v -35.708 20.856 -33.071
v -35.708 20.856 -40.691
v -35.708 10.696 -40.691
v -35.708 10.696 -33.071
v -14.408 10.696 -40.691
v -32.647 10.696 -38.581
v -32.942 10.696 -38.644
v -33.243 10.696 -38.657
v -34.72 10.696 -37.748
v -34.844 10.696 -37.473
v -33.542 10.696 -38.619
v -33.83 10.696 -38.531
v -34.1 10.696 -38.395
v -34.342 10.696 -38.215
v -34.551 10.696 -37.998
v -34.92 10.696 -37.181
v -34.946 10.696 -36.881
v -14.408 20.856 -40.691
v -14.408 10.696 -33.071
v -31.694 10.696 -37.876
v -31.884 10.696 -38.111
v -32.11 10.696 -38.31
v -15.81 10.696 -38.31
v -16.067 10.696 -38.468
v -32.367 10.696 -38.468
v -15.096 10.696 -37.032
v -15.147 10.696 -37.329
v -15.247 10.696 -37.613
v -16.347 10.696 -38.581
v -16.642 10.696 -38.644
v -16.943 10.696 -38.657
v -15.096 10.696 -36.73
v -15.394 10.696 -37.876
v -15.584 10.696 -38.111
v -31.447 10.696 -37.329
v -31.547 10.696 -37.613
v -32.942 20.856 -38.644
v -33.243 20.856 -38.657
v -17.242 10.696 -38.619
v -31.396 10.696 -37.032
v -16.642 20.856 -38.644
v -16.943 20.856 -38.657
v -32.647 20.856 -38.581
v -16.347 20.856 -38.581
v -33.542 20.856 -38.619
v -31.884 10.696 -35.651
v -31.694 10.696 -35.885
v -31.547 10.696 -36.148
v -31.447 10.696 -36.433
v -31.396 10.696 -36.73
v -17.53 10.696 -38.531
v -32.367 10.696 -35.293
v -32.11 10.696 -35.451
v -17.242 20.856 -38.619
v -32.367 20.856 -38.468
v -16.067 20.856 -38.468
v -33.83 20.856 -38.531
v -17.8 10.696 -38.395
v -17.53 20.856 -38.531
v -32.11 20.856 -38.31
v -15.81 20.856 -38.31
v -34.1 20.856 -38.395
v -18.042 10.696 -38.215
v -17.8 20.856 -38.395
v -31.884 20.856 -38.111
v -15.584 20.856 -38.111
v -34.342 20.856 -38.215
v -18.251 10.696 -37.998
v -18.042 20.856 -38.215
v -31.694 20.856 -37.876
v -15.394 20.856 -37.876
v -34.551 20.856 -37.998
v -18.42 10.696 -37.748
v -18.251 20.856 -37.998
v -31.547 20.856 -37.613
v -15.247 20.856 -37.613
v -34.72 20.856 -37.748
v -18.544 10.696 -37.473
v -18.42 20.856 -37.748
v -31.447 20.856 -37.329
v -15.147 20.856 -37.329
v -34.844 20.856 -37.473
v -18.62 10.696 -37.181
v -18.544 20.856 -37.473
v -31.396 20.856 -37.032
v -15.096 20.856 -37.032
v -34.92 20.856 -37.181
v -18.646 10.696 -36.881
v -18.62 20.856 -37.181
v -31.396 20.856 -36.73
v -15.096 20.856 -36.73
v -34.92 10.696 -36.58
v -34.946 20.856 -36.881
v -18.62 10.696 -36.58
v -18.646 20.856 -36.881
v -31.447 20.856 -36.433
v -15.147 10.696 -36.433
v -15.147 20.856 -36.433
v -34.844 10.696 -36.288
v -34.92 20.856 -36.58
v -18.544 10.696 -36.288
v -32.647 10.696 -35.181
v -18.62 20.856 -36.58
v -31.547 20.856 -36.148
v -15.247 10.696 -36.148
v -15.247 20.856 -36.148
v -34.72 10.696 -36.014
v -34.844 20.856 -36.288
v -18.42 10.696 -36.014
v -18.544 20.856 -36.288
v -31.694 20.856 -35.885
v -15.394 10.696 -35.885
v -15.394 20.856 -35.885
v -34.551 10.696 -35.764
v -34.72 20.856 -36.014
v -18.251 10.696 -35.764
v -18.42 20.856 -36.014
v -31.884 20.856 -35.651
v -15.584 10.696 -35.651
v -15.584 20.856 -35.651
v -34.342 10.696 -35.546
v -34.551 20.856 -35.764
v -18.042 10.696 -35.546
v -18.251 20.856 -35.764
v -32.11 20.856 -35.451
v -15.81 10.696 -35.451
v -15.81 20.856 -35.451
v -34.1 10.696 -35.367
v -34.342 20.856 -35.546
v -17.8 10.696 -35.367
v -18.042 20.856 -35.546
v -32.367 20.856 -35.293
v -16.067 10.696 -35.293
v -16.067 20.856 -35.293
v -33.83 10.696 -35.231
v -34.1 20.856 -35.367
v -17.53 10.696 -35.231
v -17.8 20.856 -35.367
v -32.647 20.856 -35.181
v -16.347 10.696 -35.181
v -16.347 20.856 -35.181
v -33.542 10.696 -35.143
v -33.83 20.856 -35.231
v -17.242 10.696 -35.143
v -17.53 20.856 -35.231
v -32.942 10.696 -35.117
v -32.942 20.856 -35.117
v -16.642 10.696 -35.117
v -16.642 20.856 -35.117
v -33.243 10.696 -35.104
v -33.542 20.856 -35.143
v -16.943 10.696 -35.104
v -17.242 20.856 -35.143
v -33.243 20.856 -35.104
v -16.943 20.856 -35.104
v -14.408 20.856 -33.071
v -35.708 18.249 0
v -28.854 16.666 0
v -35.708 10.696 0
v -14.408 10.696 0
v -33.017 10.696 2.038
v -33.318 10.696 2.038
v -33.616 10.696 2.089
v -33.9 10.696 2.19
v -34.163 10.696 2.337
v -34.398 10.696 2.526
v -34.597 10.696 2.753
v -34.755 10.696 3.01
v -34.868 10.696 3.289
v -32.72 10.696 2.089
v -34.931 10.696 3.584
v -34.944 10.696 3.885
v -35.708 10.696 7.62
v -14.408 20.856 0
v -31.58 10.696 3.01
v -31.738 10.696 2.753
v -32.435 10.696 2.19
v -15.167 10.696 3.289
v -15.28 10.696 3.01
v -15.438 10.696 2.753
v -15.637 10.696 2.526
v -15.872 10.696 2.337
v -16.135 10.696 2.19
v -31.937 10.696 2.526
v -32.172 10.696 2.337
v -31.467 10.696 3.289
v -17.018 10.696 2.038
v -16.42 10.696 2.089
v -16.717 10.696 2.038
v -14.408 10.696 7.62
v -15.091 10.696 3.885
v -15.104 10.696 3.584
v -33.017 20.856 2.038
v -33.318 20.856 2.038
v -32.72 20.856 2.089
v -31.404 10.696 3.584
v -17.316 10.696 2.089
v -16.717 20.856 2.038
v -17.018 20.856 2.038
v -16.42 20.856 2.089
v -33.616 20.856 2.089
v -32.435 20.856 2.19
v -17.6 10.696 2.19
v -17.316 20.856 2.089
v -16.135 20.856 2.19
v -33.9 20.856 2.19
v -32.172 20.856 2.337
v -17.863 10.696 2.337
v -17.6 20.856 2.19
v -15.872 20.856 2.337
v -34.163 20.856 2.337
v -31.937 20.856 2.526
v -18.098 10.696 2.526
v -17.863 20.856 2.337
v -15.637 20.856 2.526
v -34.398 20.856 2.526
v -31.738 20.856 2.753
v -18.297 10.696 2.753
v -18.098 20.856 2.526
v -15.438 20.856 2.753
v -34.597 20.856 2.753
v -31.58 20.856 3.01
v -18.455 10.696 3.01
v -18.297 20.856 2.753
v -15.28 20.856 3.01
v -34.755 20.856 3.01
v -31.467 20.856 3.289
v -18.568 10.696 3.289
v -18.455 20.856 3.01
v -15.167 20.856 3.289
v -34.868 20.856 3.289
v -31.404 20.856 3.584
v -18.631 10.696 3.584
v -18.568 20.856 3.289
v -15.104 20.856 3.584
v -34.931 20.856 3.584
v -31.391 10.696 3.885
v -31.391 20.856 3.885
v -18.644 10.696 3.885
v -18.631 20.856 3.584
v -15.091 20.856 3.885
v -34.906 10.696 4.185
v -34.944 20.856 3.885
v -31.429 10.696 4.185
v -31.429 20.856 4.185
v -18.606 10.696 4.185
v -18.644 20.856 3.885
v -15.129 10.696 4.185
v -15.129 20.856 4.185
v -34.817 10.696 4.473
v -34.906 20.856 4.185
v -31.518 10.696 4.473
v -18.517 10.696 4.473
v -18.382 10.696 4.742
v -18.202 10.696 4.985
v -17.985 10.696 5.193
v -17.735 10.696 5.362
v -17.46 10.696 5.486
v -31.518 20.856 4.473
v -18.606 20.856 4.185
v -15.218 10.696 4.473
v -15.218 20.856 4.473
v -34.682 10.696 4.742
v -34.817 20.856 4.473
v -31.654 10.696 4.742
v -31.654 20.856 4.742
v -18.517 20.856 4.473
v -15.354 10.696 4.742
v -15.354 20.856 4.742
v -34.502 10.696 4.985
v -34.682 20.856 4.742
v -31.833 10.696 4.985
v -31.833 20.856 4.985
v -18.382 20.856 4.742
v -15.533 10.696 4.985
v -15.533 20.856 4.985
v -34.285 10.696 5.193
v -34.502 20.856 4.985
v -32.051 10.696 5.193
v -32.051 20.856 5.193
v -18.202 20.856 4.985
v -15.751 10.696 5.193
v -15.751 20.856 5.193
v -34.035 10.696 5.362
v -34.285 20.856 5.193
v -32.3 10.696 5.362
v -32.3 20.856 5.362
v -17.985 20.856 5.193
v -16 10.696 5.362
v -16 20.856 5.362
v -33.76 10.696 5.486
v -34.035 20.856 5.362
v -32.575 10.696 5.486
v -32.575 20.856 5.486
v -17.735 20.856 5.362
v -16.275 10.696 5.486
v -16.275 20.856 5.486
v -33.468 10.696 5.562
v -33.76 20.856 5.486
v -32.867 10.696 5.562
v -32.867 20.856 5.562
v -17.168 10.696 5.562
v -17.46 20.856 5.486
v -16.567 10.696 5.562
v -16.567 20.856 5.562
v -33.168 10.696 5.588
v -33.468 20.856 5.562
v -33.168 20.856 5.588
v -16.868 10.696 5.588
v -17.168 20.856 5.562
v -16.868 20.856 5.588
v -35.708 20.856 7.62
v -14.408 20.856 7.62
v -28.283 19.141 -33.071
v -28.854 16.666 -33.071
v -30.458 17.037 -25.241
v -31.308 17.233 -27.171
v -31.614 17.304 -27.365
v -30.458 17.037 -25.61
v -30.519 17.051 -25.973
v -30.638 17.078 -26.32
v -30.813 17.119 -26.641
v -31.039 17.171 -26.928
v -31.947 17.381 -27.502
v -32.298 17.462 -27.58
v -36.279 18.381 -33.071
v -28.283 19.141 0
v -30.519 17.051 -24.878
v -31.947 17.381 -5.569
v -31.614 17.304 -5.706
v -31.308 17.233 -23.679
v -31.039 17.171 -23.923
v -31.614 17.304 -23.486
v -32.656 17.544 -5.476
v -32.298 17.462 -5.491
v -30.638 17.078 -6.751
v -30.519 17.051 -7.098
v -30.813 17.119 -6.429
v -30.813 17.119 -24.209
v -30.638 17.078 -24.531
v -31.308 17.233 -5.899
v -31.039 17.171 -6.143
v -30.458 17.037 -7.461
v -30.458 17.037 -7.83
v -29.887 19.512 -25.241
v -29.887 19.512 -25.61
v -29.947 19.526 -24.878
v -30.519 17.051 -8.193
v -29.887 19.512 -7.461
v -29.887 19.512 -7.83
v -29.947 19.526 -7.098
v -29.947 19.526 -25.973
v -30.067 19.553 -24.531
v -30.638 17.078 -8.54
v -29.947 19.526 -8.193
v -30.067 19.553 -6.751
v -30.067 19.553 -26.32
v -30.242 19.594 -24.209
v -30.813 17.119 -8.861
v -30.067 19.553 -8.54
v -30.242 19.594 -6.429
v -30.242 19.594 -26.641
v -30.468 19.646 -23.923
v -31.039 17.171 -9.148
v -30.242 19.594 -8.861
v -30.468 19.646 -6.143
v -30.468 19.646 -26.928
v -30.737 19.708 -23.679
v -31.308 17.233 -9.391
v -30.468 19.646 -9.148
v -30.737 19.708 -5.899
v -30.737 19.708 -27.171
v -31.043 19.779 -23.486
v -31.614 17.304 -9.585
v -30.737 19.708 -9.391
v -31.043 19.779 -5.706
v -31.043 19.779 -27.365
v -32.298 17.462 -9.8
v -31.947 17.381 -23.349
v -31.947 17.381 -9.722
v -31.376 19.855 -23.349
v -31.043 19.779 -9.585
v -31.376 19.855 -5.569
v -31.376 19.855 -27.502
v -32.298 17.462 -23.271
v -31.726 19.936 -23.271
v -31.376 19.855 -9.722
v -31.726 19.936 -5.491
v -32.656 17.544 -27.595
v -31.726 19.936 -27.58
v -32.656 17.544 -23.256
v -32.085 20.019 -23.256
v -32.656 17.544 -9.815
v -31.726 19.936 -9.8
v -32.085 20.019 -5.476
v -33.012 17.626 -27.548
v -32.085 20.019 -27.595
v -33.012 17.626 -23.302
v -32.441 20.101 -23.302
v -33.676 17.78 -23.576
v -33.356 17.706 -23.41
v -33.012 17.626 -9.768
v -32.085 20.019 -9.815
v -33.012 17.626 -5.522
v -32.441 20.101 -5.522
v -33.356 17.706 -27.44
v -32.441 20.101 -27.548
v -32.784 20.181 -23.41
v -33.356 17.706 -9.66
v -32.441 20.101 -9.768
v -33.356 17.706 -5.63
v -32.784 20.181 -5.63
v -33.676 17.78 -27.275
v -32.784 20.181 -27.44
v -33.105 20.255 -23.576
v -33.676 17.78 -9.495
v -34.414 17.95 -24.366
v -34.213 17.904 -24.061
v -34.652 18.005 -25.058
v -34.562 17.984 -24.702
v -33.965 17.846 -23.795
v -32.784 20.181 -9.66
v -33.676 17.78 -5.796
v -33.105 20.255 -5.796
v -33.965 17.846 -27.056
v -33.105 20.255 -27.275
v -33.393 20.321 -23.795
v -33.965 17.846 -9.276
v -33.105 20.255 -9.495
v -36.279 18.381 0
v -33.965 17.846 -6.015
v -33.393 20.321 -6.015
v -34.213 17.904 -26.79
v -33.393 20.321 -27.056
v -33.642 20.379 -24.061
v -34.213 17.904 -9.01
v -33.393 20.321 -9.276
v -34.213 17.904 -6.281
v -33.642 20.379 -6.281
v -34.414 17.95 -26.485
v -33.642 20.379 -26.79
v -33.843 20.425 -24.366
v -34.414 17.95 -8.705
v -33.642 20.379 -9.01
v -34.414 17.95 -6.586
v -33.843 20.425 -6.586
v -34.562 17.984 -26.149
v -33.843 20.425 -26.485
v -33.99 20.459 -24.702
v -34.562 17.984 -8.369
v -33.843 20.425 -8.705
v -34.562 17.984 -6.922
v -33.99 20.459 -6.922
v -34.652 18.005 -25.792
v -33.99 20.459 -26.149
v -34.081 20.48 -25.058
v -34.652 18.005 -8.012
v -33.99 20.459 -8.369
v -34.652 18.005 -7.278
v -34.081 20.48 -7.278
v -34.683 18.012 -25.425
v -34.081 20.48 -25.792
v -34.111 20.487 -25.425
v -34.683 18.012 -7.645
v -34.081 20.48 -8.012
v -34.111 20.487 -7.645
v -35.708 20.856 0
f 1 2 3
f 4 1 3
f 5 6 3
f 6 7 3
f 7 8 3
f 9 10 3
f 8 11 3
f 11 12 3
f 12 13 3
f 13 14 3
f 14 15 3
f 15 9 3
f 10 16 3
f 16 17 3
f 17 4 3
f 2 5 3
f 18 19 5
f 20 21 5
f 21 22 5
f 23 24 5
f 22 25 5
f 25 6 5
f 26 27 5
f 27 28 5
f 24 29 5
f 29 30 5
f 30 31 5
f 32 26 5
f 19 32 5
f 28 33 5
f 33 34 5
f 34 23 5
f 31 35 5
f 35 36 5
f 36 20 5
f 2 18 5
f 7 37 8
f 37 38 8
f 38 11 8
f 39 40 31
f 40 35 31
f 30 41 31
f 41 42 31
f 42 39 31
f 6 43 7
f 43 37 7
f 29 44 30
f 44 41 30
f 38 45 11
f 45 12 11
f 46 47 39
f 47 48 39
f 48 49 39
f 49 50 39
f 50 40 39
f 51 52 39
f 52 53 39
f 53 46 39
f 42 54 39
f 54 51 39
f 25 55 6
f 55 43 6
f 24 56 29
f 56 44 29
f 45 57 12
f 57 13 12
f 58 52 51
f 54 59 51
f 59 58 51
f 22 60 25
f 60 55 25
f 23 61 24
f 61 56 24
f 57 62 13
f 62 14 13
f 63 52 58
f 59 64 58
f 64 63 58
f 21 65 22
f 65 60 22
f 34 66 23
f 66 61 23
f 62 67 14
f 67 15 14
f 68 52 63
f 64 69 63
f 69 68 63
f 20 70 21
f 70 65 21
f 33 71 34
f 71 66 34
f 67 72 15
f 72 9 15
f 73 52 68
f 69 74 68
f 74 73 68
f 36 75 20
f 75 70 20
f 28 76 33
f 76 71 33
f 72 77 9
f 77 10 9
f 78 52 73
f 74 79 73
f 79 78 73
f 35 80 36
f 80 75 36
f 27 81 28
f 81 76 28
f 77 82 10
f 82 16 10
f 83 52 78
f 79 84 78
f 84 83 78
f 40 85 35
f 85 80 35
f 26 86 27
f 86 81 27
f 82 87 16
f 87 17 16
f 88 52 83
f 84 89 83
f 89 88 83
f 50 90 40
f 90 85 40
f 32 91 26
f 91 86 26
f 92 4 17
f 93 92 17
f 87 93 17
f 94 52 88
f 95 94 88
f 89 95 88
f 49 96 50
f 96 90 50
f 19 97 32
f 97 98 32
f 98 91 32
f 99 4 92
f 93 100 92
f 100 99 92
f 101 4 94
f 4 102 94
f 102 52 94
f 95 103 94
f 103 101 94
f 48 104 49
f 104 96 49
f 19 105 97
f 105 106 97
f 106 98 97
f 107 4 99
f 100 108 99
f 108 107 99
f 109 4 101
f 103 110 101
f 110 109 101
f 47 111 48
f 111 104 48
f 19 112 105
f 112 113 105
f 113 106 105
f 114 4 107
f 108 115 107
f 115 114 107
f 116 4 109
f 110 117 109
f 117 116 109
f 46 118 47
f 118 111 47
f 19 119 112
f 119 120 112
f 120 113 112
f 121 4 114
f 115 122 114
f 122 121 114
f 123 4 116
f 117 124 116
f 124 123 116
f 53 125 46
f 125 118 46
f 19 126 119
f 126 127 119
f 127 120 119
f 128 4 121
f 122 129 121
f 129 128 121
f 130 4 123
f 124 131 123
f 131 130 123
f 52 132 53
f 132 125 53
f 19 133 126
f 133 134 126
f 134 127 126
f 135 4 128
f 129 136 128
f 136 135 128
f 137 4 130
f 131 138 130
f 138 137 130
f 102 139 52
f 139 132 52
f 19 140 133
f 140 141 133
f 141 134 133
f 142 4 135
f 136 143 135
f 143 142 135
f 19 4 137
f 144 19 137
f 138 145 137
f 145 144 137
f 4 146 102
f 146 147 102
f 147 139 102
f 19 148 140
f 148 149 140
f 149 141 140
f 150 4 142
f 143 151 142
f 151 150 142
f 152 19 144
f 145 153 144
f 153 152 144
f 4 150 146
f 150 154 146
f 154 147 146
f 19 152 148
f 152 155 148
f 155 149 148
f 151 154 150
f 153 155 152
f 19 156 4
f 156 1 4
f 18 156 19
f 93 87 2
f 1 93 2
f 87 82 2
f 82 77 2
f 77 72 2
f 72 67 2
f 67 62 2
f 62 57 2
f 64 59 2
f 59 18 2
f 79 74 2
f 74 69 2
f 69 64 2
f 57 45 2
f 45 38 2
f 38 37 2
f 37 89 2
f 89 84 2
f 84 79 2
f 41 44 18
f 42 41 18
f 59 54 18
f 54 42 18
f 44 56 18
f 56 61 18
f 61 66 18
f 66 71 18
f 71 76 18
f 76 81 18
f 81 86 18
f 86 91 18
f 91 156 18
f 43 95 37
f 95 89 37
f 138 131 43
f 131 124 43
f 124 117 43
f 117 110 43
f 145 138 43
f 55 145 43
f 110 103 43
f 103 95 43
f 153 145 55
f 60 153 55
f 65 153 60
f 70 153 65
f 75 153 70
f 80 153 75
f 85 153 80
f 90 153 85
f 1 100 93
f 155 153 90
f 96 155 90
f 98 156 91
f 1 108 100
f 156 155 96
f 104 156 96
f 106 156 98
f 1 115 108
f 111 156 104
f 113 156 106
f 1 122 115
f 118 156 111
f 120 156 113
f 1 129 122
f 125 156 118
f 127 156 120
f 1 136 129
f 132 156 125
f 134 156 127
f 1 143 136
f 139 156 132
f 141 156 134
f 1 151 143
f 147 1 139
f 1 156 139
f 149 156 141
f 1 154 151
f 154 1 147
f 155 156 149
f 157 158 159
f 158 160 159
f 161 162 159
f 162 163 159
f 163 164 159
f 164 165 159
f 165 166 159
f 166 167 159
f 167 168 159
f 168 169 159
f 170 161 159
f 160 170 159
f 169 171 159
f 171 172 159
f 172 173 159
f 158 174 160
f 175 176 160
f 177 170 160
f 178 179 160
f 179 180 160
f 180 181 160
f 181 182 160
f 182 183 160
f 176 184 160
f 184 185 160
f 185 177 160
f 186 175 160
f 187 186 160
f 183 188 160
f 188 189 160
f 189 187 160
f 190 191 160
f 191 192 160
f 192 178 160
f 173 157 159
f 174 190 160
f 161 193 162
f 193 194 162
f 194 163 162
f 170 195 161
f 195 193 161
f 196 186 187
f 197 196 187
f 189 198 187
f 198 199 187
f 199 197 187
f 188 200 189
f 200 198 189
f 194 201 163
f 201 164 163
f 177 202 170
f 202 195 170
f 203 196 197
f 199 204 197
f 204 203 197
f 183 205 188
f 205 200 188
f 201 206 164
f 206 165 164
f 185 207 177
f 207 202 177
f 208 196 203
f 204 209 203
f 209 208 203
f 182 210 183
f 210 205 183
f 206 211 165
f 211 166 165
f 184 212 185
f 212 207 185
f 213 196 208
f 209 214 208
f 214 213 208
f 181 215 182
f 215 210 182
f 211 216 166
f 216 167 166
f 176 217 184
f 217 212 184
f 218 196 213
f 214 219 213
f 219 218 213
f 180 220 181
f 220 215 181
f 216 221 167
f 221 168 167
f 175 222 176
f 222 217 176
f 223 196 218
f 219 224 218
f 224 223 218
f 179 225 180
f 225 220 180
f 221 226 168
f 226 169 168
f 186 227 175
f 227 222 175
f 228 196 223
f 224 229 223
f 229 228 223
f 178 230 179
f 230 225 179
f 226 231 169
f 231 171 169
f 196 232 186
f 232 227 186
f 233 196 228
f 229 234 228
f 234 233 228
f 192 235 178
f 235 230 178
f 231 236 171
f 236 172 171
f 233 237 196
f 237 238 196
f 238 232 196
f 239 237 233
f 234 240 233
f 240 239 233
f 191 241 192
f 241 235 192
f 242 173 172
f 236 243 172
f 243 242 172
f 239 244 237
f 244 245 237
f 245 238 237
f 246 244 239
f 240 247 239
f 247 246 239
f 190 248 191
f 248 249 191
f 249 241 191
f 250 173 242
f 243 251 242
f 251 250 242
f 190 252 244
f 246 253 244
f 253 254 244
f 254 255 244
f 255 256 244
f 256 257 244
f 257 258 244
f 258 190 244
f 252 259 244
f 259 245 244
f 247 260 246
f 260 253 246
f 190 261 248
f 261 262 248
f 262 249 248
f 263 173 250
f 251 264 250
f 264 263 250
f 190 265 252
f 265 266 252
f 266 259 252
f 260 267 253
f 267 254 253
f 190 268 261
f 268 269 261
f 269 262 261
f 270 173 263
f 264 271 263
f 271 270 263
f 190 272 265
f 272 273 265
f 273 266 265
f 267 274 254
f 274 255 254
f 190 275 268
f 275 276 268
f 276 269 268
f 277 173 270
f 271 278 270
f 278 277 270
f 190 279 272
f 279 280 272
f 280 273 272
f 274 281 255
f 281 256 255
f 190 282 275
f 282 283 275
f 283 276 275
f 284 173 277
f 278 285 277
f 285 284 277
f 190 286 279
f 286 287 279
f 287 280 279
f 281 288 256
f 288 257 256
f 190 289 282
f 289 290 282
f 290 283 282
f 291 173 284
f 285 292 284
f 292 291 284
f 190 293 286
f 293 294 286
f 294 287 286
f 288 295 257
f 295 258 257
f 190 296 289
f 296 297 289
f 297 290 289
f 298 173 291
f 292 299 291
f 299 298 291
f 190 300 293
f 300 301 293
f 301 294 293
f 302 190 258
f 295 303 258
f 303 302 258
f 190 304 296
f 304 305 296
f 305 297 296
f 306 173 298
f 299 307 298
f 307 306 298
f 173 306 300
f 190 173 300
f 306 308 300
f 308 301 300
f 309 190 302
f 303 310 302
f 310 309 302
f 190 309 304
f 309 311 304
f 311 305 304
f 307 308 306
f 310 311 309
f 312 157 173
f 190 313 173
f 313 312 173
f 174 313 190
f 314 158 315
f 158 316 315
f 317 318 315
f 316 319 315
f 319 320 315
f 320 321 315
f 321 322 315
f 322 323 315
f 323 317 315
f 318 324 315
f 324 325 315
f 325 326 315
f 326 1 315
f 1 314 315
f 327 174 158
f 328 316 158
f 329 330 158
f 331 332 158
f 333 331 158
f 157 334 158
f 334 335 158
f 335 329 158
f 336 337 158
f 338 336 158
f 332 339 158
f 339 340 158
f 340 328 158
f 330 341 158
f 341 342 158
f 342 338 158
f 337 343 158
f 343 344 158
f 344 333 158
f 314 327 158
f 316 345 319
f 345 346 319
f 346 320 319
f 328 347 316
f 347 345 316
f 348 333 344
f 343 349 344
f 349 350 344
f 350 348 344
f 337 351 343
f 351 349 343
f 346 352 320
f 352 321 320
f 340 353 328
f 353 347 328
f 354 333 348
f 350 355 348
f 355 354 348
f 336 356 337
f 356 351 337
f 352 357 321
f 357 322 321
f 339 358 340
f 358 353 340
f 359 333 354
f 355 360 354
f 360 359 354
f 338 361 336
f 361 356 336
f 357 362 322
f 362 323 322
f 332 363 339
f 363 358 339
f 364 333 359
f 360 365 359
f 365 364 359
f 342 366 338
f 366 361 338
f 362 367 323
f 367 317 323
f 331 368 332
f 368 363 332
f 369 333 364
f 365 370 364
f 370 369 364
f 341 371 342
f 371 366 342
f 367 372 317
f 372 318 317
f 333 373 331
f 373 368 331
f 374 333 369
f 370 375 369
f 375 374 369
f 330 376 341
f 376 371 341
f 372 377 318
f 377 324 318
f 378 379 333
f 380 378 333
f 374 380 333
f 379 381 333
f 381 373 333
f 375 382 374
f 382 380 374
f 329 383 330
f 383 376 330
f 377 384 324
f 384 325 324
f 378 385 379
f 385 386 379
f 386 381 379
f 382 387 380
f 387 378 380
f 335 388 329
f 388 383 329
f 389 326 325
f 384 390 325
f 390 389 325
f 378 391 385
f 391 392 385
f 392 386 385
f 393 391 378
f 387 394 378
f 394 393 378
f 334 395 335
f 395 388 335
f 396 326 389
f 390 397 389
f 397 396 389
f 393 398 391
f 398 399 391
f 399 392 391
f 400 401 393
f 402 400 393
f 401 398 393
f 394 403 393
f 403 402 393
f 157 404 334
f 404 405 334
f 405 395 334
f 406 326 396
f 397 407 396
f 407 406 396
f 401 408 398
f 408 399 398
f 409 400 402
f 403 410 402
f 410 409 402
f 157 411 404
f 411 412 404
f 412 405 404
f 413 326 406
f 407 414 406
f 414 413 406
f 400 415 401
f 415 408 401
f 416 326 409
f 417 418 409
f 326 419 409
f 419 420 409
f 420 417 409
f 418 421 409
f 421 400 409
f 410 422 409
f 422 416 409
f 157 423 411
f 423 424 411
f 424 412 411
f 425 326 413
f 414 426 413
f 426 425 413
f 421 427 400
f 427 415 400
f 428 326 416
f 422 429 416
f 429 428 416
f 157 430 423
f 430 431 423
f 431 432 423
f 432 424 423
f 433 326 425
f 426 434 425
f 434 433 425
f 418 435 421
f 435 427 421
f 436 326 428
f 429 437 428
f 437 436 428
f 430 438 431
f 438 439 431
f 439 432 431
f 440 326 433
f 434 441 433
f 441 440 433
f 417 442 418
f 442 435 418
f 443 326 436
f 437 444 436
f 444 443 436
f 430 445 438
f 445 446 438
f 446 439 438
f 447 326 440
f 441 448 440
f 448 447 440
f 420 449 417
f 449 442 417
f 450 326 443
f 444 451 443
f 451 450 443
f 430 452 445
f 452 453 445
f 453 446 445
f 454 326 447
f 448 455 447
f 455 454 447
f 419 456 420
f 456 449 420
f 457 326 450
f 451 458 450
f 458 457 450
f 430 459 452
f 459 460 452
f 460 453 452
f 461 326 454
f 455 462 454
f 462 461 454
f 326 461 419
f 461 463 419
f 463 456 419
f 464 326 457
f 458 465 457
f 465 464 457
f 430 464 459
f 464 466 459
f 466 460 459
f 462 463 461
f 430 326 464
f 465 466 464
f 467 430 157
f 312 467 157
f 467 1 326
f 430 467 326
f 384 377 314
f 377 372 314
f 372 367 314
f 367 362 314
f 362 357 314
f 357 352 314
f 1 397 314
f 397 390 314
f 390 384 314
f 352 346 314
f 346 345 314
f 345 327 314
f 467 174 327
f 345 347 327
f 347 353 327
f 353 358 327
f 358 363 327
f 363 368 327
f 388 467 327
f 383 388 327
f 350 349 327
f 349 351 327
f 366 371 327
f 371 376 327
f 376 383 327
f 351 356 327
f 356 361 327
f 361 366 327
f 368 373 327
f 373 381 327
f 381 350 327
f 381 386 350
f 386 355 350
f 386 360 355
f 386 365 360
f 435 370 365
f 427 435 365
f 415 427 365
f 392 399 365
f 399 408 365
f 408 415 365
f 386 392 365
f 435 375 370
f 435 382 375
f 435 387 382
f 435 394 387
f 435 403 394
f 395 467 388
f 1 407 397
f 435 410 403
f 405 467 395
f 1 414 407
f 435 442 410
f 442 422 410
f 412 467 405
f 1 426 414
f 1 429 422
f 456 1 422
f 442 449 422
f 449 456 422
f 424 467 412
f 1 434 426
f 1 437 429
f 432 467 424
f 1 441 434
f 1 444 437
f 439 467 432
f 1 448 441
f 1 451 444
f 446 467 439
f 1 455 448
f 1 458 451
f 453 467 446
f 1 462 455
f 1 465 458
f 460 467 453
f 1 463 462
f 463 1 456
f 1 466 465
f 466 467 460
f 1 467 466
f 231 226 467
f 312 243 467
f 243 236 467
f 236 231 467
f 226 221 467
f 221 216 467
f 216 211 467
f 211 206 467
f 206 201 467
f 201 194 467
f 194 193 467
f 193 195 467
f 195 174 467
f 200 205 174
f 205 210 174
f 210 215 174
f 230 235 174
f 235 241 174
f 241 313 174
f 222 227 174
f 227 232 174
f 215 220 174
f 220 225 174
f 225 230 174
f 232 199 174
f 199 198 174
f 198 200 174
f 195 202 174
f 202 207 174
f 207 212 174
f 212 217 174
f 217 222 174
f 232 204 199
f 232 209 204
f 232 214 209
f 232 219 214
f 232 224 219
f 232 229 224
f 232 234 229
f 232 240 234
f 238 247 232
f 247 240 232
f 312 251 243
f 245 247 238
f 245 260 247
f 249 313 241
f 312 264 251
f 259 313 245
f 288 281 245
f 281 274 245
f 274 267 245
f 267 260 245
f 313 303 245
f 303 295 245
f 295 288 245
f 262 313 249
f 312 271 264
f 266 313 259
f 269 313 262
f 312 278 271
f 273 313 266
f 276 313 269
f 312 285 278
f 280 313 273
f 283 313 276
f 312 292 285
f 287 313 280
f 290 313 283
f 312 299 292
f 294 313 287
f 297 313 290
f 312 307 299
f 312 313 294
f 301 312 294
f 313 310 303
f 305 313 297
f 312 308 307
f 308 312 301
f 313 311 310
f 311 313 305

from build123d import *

# Parameters (mm, degrees)
SKETCH1_W           = 21.30000058
SKETCH1_H           = 10.16
BOSS_EXTRUDE1_DEPTH = 7.62
BOSS_EXTRUDE2_DEPTH = 33.0708
SKETCH4_W           = 21.30000058
SKETCH4_H           = 10.16
BOSS_EXTRUDE4_DEPTH = 7.62
SKETCH5_R           = 1.778
CUT_EXTRUDE1_DEPTH  = 10.16
SKETCH6_R           = 1.778
CUT_EXTRUDE2_DEPTH  = 10.16
SKETCH7_R           = 2.1717
CUT_EXTRUDE3_DEPTH  = 2.54


with BuildPart() as part:
    # Sketch1 → Boss-Extrude1 (new body)
    with BuildSketch(Plane.XY):
        with Locations((-25.057547882, 15.775525439)):
            Rectangle(SKETCH1_W, SKETCH1_H)
    extrude(amount=BOSS_EXTRUDE1_DEPTH)

    # Sketch2 → Boss-Extrude2 (add)
    with BuildSketch(Plane(origin=(0, 0, 0), x_dir=(-1, 0, 0), z_dir=(0, 0, -1))):
        Polygon((28.282848278, 19.141398405), (35.707548172, 20.855525439), (36.27892385, 18.380625474), (28.854223956, 16.66649844), align=None)
    extrude(amount=BOSS_EXTRUDE2_DEPTH)

    # Sketch5 → Cut-Extrude1 (cut)
    with BuildSketch(Plane(origin=(0, 20.855525439, 0), x_dir=(1, 0, 0), z_dir=(0, 1, 0))):
        with Locations(Location((-33.167548172, -3.81, 0), (0, 0, 270))):
            Circle(SKETCH5_R)
        with Locations(Location((-16.867547752, -3.81, 0), (0, 0, 270))):
            Circle(SKETCH5_R)
    extrude(amount=-CUT_EXTRUDE1_DEPTH, mode=Mode.SUBTRACT)

    # Sketch7 → Cut-Extrude3 (cut)
    with BuildSketch(Plane(origin=(2.764322068, 11.973594347, 0), x_dir=(0.9743700647852351, -0.2249510543438655, 0), z_dir=(0.2249510543438655, 0.9743700647852351, 0))):
        with Locations(Location((-35.673838462, 7.6454, 0), (0, 0, 180))):
            Circle(SKETCH7_R)
        with Locations(Location((-35.673838462, 25.4254, 0), (0, 0, 180))):
            Circle(SKETCH7_R)
    extrude(amount=-CUT_EXTRUDE3_DEPTH, mode=Mode.SUBTRACT)


with BuildPart() as body_2:
    # Sketch4 → Boss-Extrude4 (new body)
    with BuildSketch(Plane(origin=(0, 0, -33.0708), x_dir=(-1, 0, 0), z_dir=(0, 0, -1))):
        with Locations((25.057547882, 15.775525439)):
            Rectangle(SKETCH4_W, SKETCH4_H)
    extrude(amount=BOSS_EXTRUDE4_DEPTH)

    # Sketch6 → Cut-Extrude2 (cut)
    with BuildSketch(Plane(origin=(0, 20.855525439, 0), x_dir=(1, 0, 0), z_dir=(0, 1, 0))):
        with Locations(Location((-33.167548172, 36.8808, 0), (0, 0, 180))):
            Circle(SKETCH6_R)
        with Locations(Location((-16.867547752, 36.8808, 0), (0, 0, 180))):
            Circle(SKETCH6_R)
    extrude(amount=-CUT_EXTRUDE2_DEPTH, mode=Mode.SUBTRACT)


solid = Compound([part.part, body_2.part])
